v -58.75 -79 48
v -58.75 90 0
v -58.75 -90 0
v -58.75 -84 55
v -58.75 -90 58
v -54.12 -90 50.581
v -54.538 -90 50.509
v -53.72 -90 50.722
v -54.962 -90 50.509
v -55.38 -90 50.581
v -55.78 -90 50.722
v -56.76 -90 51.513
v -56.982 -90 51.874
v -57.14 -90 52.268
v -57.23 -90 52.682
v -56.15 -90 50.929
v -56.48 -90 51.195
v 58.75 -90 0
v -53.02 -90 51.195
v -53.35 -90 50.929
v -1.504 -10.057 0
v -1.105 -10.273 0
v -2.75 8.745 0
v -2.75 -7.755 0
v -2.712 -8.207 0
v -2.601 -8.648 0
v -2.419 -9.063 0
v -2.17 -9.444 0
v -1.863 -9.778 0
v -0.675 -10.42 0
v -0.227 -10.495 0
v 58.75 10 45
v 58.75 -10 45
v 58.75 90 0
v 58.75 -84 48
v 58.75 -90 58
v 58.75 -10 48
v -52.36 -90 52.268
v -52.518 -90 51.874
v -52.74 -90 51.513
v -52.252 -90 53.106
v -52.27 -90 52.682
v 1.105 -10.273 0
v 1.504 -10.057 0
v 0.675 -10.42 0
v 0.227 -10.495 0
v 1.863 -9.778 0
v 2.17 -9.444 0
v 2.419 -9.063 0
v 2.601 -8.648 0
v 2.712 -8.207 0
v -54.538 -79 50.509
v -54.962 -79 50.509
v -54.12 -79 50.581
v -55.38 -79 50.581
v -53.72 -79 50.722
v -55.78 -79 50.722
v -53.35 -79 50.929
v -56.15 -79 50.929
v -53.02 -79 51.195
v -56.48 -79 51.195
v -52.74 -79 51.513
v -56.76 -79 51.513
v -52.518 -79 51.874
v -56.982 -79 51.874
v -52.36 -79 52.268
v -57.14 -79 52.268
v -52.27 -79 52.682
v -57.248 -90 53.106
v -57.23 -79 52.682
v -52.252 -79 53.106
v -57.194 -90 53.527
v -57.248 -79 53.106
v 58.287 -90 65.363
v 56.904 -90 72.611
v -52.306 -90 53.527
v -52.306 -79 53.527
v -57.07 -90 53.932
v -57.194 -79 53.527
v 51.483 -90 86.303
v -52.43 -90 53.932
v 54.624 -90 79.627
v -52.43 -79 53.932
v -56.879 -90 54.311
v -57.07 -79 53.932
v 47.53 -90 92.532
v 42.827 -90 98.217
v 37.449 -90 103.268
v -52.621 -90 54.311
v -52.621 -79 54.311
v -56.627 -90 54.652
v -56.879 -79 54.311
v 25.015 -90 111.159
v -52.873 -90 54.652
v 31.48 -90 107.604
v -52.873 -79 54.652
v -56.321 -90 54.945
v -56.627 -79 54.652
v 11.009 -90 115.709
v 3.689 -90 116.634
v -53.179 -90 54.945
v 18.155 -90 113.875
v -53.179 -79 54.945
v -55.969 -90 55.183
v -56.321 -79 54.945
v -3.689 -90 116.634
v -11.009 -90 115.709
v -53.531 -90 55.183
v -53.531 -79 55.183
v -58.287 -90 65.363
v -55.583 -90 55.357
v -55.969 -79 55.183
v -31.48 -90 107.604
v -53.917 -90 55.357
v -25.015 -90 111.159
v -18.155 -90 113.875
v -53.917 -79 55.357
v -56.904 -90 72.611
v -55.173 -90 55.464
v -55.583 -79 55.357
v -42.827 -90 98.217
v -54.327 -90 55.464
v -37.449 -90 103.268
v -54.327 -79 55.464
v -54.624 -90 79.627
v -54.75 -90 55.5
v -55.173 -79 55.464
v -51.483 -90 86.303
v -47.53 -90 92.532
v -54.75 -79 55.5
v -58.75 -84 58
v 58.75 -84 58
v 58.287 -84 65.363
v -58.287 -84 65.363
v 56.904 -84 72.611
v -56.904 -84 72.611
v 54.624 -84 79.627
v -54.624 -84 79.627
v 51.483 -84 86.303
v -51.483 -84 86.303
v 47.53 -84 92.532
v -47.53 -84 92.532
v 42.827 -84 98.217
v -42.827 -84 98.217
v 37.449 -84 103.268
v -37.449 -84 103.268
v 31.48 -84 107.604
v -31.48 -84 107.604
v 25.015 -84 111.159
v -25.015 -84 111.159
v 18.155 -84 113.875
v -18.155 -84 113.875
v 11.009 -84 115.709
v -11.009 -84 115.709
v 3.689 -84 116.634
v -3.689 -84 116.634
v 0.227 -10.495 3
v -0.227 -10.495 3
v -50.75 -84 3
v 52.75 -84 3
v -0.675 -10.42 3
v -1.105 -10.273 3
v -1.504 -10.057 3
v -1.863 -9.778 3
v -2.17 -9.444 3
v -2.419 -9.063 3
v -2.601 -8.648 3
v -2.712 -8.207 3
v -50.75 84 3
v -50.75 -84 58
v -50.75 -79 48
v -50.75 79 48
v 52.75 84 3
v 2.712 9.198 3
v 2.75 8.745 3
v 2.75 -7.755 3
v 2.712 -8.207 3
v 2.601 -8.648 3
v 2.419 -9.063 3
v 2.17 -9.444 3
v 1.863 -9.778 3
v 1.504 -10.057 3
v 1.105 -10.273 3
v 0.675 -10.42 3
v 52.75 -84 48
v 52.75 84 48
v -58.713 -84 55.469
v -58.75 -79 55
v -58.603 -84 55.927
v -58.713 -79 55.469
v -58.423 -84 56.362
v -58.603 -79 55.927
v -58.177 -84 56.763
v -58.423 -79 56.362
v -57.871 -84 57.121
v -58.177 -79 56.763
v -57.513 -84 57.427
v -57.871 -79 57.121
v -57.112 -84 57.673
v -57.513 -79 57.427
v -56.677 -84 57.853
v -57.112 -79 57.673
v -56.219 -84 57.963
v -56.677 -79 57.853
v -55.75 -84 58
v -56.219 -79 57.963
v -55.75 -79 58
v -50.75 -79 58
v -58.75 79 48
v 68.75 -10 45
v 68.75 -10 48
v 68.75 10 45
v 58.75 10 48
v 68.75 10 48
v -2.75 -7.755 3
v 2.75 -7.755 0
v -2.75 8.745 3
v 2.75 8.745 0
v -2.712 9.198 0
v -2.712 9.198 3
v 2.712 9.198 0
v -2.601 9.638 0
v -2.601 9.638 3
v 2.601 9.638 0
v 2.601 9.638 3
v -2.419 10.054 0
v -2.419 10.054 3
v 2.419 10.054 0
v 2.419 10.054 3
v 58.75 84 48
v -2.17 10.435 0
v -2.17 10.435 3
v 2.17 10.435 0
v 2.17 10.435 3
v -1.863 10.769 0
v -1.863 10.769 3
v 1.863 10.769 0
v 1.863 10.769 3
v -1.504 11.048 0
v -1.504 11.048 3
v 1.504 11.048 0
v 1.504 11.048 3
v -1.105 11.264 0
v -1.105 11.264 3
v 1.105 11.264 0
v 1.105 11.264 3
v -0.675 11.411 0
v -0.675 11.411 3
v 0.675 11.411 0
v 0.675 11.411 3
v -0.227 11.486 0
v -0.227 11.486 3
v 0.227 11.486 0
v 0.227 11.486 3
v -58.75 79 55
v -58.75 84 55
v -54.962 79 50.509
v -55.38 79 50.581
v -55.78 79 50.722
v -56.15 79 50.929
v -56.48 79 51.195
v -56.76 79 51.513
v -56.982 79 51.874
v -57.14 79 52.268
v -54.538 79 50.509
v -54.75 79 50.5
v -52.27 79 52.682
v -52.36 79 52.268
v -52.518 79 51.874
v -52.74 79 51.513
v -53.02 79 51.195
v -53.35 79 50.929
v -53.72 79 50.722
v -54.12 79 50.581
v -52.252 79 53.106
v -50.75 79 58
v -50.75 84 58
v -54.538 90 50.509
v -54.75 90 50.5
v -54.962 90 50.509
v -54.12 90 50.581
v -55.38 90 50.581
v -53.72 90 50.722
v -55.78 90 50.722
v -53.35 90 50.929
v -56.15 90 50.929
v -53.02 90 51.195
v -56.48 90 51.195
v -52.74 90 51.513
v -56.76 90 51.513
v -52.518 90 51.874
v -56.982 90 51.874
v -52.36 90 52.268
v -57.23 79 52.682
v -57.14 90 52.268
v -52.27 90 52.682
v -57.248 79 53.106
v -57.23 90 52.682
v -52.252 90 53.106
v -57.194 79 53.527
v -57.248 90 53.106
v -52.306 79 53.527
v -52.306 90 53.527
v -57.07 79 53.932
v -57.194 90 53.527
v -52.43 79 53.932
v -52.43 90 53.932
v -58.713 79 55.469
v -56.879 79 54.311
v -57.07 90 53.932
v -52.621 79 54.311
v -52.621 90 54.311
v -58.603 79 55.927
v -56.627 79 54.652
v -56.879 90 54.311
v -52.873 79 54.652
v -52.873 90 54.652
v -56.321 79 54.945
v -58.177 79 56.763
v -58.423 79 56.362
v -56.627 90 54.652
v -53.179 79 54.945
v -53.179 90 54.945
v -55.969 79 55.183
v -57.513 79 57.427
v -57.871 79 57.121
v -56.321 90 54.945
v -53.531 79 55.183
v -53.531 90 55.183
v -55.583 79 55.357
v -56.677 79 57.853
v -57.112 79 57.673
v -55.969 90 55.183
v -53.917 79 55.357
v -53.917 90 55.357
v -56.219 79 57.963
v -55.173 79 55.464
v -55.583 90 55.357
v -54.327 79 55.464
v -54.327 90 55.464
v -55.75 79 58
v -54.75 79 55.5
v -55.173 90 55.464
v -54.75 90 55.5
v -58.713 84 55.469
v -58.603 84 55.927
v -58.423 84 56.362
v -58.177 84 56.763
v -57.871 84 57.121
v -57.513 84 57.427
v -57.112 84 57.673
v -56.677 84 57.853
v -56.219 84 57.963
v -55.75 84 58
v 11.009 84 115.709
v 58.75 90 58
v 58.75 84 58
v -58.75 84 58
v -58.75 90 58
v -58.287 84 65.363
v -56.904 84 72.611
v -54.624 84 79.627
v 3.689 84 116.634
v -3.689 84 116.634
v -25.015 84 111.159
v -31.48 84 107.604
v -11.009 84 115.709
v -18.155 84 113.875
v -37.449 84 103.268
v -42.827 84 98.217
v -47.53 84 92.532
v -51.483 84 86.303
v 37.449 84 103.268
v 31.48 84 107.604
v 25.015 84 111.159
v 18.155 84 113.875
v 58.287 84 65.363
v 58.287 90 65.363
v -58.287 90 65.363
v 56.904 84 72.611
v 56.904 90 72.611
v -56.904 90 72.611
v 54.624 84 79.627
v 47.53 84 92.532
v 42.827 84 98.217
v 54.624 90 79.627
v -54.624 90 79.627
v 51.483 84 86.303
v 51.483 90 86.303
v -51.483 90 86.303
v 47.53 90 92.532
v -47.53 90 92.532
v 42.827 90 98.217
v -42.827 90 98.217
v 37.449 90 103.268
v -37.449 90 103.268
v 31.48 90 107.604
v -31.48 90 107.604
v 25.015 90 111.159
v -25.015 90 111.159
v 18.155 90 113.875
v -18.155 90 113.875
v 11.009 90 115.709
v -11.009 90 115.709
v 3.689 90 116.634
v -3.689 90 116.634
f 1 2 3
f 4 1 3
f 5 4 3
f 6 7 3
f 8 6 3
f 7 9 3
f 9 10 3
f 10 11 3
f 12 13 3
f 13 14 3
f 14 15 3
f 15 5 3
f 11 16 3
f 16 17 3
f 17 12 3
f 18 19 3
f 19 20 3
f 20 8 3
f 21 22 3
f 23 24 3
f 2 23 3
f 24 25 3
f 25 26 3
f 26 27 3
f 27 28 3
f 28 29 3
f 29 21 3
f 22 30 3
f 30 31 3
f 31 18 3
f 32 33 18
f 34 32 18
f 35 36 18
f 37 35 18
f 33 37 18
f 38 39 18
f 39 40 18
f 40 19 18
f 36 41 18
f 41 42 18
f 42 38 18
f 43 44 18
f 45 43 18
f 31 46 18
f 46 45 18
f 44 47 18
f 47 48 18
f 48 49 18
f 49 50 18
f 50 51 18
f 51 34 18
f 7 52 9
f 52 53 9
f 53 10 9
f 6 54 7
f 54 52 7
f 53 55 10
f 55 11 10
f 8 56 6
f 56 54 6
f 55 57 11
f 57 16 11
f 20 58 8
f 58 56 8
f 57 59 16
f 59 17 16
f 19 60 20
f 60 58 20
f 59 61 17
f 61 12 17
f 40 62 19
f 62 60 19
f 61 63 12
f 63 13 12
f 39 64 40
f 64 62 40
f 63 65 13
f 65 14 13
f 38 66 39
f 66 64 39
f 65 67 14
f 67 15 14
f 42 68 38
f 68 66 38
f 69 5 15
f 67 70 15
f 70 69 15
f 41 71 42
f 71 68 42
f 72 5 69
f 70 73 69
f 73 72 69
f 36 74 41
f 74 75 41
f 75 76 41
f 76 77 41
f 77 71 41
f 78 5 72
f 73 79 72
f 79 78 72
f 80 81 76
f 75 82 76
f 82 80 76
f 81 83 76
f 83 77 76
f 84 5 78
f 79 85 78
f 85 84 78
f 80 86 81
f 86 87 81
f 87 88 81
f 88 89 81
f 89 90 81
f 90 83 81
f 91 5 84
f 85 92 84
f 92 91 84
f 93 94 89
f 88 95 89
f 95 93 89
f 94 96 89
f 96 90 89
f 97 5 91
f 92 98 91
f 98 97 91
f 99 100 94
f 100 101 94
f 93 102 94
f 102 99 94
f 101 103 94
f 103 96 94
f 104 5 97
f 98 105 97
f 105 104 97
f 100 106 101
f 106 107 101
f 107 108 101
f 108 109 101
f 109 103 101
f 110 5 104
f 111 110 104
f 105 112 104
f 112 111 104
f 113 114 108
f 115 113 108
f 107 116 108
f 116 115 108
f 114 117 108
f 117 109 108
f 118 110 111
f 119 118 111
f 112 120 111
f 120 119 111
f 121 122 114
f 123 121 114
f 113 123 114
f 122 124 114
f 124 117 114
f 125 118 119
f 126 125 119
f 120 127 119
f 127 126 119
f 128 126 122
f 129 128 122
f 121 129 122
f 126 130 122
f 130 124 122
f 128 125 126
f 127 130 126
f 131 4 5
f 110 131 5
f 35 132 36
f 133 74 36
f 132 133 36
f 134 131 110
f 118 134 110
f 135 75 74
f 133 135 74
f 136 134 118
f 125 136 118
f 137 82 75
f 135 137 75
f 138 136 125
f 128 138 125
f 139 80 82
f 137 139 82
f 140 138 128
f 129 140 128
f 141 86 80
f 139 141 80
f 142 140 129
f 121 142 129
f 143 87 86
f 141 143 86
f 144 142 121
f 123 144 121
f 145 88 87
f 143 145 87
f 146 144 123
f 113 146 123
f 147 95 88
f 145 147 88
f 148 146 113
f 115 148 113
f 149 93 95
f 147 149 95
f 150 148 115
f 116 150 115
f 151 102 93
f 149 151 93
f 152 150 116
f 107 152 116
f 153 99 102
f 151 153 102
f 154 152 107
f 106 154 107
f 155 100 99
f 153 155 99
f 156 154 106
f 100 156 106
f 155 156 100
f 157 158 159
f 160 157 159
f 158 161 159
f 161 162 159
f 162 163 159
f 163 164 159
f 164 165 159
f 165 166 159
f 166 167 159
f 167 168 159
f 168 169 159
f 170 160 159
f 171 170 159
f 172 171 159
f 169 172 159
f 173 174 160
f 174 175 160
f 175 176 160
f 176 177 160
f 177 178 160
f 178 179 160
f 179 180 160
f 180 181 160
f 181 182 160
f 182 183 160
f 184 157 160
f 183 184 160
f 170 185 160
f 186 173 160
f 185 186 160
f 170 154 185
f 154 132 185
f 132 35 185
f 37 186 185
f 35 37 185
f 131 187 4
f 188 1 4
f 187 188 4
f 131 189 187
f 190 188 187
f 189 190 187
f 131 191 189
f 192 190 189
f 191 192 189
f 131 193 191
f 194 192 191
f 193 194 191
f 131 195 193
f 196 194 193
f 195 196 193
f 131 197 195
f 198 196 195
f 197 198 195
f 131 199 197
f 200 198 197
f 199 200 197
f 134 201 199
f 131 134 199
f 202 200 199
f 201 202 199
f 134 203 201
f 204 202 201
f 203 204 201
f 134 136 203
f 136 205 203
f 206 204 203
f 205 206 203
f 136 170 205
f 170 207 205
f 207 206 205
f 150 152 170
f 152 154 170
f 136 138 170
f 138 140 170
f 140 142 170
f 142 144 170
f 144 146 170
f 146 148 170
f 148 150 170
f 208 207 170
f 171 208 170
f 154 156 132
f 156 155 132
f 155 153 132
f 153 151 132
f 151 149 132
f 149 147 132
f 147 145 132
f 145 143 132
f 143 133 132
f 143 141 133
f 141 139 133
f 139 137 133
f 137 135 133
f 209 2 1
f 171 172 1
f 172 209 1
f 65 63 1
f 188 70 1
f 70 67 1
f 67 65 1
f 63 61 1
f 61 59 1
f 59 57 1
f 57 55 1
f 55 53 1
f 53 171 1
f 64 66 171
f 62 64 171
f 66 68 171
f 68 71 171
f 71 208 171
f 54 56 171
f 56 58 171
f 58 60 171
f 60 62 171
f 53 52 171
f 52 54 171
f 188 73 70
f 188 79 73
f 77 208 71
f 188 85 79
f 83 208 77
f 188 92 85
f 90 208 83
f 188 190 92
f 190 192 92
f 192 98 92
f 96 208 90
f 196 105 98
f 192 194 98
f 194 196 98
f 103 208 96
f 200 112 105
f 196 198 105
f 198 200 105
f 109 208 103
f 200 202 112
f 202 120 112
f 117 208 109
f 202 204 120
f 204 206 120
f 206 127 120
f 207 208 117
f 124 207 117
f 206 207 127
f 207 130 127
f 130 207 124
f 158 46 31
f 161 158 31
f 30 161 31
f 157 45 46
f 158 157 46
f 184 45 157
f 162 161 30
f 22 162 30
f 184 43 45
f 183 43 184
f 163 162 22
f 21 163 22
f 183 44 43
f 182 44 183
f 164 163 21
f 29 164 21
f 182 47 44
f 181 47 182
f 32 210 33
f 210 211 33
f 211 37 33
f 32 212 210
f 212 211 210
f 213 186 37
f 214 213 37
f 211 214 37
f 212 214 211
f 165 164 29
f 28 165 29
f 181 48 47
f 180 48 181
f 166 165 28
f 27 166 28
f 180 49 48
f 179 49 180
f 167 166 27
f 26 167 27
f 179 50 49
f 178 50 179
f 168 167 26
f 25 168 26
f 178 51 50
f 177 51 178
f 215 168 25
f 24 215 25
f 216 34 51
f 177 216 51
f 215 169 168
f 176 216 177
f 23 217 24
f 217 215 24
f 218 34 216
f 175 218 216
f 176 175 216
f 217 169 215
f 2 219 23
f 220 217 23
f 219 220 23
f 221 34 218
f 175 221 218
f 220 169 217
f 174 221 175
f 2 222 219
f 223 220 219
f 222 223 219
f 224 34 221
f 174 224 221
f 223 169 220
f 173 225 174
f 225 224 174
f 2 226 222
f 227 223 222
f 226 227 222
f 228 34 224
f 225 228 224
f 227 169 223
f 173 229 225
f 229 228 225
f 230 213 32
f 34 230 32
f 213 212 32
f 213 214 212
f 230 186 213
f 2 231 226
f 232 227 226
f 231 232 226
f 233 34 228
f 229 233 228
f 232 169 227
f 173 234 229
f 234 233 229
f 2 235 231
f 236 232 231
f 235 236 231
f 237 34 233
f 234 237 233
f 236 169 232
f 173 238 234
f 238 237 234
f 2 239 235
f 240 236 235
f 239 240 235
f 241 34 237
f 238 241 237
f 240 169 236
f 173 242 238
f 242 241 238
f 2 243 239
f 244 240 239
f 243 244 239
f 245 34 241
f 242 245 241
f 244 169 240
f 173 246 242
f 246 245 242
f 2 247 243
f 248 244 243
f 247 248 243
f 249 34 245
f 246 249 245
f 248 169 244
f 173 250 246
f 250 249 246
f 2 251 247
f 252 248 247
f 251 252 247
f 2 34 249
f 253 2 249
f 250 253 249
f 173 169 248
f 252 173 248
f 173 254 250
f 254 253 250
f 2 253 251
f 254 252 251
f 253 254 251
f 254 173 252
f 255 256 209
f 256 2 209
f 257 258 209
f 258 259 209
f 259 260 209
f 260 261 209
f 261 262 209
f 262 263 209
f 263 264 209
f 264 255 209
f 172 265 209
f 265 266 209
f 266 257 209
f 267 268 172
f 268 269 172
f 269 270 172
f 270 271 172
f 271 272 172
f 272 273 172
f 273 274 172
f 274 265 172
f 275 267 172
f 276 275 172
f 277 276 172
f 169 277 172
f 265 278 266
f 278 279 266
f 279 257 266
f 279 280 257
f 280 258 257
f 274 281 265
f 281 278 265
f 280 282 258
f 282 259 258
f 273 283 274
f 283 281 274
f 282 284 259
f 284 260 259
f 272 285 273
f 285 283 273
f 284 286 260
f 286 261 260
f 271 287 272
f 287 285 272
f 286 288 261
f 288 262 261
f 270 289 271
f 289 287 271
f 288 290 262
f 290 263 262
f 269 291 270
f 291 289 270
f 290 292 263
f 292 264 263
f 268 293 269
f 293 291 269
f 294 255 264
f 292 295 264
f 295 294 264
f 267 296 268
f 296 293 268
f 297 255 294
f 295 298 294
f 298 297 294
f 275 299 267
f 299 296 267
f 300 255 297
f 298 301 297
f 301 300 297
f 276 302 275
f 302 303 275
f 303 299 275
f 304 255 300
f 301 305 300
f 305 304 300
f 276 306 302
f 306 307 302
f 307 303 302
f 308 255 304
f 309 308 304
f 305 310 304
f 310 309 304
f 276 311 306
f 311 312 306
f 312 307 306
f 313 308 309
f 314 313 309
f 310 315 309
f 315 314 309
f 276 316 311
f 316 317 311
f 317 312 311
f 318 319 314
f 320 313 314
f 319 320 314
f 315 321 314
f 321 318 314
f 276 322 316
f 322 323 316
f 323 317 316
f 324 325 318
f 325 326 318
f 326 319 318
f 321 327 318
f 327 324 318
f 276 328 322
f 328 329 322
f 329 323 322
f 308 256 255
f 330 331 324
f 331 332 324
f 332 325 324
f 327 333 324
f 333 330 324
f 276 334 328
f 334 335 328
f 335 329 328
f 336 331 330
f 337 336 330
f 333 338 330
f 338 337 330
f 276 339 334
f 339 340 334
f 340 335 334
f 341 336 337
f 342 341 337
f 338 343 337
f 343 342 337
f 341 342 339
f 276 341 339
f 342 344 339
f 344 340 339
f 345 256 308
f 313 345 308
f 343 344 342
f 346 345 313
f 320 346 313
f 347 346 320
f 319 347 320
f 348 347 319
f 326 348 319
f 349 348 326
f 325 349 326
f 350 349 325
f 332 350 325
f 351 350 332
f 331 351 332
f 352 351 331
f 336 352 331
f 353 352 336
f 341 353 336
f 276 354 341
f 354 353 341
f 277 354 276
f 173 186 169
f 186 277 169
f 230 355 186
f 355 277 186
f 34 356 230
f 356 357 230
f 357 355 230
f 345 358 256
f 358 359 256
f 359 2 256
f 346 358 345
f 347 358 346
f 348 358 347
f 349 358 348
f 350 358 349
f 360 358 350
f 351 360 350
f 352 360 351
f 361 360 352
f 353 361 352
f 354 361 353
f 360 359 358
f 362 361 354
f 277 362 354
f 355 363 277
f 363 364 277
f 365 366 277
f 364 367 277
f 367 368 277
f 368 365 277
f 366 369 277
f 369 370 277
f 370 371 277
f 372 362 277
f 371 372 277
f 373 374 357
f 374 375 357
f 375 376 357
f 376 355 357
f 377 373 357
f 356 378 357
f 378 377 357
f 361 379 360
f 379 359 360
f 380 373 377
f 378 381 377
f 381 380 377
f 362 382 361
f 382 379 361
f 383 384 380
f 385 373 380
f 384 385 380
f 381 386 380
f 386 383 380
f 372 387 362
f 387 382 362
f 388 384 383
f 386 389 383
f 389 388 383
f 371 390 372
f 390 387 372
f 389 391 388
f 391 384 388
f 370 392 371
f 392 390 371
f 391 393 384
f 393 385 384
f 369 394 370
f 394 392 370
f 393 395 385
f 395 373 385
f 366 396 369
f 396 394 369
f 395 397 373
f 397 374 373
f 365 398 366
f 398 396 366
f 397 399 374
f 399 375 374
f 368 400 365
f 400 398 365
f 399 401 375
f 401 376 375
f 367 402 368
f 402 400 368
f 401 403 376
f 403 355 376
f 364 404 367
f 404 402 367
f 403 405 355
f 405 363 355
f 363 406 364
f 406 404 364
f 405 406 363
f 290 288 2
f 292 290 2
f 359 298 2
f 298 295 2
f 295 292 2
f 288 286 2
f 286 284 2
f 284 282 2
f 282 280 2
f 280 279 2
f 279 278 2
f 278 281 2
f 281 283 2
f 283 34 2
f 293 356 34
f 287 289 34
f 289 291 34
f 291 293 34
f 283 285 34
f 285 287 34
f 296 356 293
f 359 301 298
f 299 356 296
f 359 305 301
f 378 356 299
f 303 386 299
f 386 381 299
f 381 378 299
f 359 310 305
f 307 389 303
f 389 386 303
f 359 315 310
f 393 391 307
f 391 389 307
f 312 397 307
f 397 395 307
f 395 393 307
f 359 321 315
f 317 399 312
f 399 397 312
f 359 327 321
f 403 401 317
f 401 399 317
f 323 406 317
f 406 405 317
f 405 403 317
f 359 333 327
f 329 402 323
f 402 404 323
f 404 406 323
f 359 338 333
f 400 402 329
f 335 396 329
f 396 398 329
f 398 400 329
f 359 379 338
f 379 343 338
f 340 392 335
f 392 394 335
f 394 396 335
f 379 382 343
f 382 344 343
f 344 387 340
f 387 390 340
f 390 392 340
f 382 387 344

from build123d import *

# Parameters (mm, degrees)
SKETCH_2_W               = 117.5
SKETCH_2_H               = 180
EXTRUDE_2_DEPTH          = 3
EXTRUDE_5_DEPTH          = 6
EXTRUDE_START            = -6
EXTRUDE_6_DEPTH          = 6
EXTRUDE_8_DEPTH          = 8
CUT_EXTRUDE_1_DEPTH      = 188
CUT_EXTRUDE_1_DEPTH_BACK = 20
SKETCH_8_R               = 2.5
FILLET_1_R               = 3
SKETCH_10_W              = 6
SKETCH_10_H              = 168
EXTRUDE_9_DEPTH          = 45
CUT_EXTRUDE_2_DEPTH      = 159.688767718
SKETCH_12_W              = 3
SKETCH_12_H              = 20
EXTRUDE_10_DEPTH         = 10


with BuildPart() as part:
    # 草圖2 → 填料-伸長2 (new body)
    with BuildSketch(Plane.XY):
        Rectangle(SKETCH_2_W, SKETCH_2_H)
    extrude(amount=EXTRUDE_2_DEPTH)

    # 草圖4 → 填料-伸長5 (add)
    with BuildSketch(Plane.XZ.offset(90)):
        with BuildLine():
            Line((-58.75, 3), (-58.75, 58))
            ThreePointArc((-58.75, 58), (0, 116.75), (58.75, 58))
            Line((58.75, 58), (58.75, 3))
            Line((58.75, 3), (-58.75, 3))
        make_face()
    extrude(amount=-EXTRUDE_5_DEPTH)

    # 草圖5 → 填料-伸長6 (add)
    with BuildSketch(Plane(origin=(0, 90, 0), x_dir=(1, 0, 0), z_dir=(0, 1, 0)).offset(EXTRUDE_START)):
        with BuildLine():
            Line((-58.75, -3), (-58.75, -58))
            ThreePointArc((-58.75, -58), (0, -116.75), (58.75, -58))
            Line((58.75, -58), (58.75, -3))
            Line((58.75, -3), (-58.75, -3))
        make_face()
    extrude(amount=EXTRUDE_6_DEPTH)

    # 草圖7 → 填料-伸長8 (add)
    with BuildSketch(Plane.ZY.offset(58.75)):
        Polygon((3, 84), (58, 84), (58, 79), (48, 79), (48, -79), (58, -79), (58, -84), (3, -84), align=None)
    extrude(amount=-EXTRUDE_8_DEPTH)

    # 草圖8 → 除料-伸長1 (cut, two sides: drawn at the far end of the back side and taken through both)
    with BuildSketch(Plane.XZ.offset(-79).offset(-CUT_EXTRUDE_1_DEPTH_BACK)):
        with Locations(Location((-54.75, 53, 0), (0, 0, 90))):
            Circle(SKETCH_8_R)
    extrude(amount=CUT_EXTRUDE_1_DEPTH + CUT_EXTRUDE_1_DEPTH_BACK, mode=Mode.SUBTRACT)

    # 圓角1
    fillet_1_edges = [part.edges().sort_by_distance(p)[0] for p in [
        (-58.75, -81.5, 58),
        (-58.75, 81.5, 58),
    ]]
    fillet(fillet_1_edges, radius=FILLET_1_R)

    # 草圖10 → 填料-伸長9 (add)
    with BuildSketch(Plane.XY.offset(3)):
        with Locations((55.75, 0)):
            Rectangle(SKETCH_10_W, SKETCH_10_H)
    extrude(amount=EXTRUDE_9_DEPTH)

    # 草圖11 → 除料-伸長2 (cut, through all)
    with BuildSketch(Plane(origin=(0, 0, 0), x_dir=(-1, 0, 0), z_dir=(0, 0, -1))):
        with BuildLine():
            Line((2.75, 8.745412879), (2.75, -7.754587121))
            ThreePointArc((2.75, -7.754587121), (0, -10.504587121), (-2.75, -7.754587121))
            Line((-2.75, -7.754587121), (-2.75, 8.745412879))
            ThreePointArc((-2.75, 8.745412879), (0, 11.495412879), (2.75, 8.745412879))
        make_face()
    extrude(amount=-CUT_EXTRUDE_2_DEPTH, mode=Mode.SUBTRACT)

    # 草圖12 → 填料-伸長10 (add)
    with BuildSketch(Plane(origin=(58.75, 0, 0), x_dir=(0, 0, -1), z_dir=(1, 0, 0))):
        with Locations((-46.5, 0)):
            Rectangle(SKETCH_12_W, SKETCH_12_H)
    extrude(amount=EXTRUDE_10_DEPTH)


solid = part.part
